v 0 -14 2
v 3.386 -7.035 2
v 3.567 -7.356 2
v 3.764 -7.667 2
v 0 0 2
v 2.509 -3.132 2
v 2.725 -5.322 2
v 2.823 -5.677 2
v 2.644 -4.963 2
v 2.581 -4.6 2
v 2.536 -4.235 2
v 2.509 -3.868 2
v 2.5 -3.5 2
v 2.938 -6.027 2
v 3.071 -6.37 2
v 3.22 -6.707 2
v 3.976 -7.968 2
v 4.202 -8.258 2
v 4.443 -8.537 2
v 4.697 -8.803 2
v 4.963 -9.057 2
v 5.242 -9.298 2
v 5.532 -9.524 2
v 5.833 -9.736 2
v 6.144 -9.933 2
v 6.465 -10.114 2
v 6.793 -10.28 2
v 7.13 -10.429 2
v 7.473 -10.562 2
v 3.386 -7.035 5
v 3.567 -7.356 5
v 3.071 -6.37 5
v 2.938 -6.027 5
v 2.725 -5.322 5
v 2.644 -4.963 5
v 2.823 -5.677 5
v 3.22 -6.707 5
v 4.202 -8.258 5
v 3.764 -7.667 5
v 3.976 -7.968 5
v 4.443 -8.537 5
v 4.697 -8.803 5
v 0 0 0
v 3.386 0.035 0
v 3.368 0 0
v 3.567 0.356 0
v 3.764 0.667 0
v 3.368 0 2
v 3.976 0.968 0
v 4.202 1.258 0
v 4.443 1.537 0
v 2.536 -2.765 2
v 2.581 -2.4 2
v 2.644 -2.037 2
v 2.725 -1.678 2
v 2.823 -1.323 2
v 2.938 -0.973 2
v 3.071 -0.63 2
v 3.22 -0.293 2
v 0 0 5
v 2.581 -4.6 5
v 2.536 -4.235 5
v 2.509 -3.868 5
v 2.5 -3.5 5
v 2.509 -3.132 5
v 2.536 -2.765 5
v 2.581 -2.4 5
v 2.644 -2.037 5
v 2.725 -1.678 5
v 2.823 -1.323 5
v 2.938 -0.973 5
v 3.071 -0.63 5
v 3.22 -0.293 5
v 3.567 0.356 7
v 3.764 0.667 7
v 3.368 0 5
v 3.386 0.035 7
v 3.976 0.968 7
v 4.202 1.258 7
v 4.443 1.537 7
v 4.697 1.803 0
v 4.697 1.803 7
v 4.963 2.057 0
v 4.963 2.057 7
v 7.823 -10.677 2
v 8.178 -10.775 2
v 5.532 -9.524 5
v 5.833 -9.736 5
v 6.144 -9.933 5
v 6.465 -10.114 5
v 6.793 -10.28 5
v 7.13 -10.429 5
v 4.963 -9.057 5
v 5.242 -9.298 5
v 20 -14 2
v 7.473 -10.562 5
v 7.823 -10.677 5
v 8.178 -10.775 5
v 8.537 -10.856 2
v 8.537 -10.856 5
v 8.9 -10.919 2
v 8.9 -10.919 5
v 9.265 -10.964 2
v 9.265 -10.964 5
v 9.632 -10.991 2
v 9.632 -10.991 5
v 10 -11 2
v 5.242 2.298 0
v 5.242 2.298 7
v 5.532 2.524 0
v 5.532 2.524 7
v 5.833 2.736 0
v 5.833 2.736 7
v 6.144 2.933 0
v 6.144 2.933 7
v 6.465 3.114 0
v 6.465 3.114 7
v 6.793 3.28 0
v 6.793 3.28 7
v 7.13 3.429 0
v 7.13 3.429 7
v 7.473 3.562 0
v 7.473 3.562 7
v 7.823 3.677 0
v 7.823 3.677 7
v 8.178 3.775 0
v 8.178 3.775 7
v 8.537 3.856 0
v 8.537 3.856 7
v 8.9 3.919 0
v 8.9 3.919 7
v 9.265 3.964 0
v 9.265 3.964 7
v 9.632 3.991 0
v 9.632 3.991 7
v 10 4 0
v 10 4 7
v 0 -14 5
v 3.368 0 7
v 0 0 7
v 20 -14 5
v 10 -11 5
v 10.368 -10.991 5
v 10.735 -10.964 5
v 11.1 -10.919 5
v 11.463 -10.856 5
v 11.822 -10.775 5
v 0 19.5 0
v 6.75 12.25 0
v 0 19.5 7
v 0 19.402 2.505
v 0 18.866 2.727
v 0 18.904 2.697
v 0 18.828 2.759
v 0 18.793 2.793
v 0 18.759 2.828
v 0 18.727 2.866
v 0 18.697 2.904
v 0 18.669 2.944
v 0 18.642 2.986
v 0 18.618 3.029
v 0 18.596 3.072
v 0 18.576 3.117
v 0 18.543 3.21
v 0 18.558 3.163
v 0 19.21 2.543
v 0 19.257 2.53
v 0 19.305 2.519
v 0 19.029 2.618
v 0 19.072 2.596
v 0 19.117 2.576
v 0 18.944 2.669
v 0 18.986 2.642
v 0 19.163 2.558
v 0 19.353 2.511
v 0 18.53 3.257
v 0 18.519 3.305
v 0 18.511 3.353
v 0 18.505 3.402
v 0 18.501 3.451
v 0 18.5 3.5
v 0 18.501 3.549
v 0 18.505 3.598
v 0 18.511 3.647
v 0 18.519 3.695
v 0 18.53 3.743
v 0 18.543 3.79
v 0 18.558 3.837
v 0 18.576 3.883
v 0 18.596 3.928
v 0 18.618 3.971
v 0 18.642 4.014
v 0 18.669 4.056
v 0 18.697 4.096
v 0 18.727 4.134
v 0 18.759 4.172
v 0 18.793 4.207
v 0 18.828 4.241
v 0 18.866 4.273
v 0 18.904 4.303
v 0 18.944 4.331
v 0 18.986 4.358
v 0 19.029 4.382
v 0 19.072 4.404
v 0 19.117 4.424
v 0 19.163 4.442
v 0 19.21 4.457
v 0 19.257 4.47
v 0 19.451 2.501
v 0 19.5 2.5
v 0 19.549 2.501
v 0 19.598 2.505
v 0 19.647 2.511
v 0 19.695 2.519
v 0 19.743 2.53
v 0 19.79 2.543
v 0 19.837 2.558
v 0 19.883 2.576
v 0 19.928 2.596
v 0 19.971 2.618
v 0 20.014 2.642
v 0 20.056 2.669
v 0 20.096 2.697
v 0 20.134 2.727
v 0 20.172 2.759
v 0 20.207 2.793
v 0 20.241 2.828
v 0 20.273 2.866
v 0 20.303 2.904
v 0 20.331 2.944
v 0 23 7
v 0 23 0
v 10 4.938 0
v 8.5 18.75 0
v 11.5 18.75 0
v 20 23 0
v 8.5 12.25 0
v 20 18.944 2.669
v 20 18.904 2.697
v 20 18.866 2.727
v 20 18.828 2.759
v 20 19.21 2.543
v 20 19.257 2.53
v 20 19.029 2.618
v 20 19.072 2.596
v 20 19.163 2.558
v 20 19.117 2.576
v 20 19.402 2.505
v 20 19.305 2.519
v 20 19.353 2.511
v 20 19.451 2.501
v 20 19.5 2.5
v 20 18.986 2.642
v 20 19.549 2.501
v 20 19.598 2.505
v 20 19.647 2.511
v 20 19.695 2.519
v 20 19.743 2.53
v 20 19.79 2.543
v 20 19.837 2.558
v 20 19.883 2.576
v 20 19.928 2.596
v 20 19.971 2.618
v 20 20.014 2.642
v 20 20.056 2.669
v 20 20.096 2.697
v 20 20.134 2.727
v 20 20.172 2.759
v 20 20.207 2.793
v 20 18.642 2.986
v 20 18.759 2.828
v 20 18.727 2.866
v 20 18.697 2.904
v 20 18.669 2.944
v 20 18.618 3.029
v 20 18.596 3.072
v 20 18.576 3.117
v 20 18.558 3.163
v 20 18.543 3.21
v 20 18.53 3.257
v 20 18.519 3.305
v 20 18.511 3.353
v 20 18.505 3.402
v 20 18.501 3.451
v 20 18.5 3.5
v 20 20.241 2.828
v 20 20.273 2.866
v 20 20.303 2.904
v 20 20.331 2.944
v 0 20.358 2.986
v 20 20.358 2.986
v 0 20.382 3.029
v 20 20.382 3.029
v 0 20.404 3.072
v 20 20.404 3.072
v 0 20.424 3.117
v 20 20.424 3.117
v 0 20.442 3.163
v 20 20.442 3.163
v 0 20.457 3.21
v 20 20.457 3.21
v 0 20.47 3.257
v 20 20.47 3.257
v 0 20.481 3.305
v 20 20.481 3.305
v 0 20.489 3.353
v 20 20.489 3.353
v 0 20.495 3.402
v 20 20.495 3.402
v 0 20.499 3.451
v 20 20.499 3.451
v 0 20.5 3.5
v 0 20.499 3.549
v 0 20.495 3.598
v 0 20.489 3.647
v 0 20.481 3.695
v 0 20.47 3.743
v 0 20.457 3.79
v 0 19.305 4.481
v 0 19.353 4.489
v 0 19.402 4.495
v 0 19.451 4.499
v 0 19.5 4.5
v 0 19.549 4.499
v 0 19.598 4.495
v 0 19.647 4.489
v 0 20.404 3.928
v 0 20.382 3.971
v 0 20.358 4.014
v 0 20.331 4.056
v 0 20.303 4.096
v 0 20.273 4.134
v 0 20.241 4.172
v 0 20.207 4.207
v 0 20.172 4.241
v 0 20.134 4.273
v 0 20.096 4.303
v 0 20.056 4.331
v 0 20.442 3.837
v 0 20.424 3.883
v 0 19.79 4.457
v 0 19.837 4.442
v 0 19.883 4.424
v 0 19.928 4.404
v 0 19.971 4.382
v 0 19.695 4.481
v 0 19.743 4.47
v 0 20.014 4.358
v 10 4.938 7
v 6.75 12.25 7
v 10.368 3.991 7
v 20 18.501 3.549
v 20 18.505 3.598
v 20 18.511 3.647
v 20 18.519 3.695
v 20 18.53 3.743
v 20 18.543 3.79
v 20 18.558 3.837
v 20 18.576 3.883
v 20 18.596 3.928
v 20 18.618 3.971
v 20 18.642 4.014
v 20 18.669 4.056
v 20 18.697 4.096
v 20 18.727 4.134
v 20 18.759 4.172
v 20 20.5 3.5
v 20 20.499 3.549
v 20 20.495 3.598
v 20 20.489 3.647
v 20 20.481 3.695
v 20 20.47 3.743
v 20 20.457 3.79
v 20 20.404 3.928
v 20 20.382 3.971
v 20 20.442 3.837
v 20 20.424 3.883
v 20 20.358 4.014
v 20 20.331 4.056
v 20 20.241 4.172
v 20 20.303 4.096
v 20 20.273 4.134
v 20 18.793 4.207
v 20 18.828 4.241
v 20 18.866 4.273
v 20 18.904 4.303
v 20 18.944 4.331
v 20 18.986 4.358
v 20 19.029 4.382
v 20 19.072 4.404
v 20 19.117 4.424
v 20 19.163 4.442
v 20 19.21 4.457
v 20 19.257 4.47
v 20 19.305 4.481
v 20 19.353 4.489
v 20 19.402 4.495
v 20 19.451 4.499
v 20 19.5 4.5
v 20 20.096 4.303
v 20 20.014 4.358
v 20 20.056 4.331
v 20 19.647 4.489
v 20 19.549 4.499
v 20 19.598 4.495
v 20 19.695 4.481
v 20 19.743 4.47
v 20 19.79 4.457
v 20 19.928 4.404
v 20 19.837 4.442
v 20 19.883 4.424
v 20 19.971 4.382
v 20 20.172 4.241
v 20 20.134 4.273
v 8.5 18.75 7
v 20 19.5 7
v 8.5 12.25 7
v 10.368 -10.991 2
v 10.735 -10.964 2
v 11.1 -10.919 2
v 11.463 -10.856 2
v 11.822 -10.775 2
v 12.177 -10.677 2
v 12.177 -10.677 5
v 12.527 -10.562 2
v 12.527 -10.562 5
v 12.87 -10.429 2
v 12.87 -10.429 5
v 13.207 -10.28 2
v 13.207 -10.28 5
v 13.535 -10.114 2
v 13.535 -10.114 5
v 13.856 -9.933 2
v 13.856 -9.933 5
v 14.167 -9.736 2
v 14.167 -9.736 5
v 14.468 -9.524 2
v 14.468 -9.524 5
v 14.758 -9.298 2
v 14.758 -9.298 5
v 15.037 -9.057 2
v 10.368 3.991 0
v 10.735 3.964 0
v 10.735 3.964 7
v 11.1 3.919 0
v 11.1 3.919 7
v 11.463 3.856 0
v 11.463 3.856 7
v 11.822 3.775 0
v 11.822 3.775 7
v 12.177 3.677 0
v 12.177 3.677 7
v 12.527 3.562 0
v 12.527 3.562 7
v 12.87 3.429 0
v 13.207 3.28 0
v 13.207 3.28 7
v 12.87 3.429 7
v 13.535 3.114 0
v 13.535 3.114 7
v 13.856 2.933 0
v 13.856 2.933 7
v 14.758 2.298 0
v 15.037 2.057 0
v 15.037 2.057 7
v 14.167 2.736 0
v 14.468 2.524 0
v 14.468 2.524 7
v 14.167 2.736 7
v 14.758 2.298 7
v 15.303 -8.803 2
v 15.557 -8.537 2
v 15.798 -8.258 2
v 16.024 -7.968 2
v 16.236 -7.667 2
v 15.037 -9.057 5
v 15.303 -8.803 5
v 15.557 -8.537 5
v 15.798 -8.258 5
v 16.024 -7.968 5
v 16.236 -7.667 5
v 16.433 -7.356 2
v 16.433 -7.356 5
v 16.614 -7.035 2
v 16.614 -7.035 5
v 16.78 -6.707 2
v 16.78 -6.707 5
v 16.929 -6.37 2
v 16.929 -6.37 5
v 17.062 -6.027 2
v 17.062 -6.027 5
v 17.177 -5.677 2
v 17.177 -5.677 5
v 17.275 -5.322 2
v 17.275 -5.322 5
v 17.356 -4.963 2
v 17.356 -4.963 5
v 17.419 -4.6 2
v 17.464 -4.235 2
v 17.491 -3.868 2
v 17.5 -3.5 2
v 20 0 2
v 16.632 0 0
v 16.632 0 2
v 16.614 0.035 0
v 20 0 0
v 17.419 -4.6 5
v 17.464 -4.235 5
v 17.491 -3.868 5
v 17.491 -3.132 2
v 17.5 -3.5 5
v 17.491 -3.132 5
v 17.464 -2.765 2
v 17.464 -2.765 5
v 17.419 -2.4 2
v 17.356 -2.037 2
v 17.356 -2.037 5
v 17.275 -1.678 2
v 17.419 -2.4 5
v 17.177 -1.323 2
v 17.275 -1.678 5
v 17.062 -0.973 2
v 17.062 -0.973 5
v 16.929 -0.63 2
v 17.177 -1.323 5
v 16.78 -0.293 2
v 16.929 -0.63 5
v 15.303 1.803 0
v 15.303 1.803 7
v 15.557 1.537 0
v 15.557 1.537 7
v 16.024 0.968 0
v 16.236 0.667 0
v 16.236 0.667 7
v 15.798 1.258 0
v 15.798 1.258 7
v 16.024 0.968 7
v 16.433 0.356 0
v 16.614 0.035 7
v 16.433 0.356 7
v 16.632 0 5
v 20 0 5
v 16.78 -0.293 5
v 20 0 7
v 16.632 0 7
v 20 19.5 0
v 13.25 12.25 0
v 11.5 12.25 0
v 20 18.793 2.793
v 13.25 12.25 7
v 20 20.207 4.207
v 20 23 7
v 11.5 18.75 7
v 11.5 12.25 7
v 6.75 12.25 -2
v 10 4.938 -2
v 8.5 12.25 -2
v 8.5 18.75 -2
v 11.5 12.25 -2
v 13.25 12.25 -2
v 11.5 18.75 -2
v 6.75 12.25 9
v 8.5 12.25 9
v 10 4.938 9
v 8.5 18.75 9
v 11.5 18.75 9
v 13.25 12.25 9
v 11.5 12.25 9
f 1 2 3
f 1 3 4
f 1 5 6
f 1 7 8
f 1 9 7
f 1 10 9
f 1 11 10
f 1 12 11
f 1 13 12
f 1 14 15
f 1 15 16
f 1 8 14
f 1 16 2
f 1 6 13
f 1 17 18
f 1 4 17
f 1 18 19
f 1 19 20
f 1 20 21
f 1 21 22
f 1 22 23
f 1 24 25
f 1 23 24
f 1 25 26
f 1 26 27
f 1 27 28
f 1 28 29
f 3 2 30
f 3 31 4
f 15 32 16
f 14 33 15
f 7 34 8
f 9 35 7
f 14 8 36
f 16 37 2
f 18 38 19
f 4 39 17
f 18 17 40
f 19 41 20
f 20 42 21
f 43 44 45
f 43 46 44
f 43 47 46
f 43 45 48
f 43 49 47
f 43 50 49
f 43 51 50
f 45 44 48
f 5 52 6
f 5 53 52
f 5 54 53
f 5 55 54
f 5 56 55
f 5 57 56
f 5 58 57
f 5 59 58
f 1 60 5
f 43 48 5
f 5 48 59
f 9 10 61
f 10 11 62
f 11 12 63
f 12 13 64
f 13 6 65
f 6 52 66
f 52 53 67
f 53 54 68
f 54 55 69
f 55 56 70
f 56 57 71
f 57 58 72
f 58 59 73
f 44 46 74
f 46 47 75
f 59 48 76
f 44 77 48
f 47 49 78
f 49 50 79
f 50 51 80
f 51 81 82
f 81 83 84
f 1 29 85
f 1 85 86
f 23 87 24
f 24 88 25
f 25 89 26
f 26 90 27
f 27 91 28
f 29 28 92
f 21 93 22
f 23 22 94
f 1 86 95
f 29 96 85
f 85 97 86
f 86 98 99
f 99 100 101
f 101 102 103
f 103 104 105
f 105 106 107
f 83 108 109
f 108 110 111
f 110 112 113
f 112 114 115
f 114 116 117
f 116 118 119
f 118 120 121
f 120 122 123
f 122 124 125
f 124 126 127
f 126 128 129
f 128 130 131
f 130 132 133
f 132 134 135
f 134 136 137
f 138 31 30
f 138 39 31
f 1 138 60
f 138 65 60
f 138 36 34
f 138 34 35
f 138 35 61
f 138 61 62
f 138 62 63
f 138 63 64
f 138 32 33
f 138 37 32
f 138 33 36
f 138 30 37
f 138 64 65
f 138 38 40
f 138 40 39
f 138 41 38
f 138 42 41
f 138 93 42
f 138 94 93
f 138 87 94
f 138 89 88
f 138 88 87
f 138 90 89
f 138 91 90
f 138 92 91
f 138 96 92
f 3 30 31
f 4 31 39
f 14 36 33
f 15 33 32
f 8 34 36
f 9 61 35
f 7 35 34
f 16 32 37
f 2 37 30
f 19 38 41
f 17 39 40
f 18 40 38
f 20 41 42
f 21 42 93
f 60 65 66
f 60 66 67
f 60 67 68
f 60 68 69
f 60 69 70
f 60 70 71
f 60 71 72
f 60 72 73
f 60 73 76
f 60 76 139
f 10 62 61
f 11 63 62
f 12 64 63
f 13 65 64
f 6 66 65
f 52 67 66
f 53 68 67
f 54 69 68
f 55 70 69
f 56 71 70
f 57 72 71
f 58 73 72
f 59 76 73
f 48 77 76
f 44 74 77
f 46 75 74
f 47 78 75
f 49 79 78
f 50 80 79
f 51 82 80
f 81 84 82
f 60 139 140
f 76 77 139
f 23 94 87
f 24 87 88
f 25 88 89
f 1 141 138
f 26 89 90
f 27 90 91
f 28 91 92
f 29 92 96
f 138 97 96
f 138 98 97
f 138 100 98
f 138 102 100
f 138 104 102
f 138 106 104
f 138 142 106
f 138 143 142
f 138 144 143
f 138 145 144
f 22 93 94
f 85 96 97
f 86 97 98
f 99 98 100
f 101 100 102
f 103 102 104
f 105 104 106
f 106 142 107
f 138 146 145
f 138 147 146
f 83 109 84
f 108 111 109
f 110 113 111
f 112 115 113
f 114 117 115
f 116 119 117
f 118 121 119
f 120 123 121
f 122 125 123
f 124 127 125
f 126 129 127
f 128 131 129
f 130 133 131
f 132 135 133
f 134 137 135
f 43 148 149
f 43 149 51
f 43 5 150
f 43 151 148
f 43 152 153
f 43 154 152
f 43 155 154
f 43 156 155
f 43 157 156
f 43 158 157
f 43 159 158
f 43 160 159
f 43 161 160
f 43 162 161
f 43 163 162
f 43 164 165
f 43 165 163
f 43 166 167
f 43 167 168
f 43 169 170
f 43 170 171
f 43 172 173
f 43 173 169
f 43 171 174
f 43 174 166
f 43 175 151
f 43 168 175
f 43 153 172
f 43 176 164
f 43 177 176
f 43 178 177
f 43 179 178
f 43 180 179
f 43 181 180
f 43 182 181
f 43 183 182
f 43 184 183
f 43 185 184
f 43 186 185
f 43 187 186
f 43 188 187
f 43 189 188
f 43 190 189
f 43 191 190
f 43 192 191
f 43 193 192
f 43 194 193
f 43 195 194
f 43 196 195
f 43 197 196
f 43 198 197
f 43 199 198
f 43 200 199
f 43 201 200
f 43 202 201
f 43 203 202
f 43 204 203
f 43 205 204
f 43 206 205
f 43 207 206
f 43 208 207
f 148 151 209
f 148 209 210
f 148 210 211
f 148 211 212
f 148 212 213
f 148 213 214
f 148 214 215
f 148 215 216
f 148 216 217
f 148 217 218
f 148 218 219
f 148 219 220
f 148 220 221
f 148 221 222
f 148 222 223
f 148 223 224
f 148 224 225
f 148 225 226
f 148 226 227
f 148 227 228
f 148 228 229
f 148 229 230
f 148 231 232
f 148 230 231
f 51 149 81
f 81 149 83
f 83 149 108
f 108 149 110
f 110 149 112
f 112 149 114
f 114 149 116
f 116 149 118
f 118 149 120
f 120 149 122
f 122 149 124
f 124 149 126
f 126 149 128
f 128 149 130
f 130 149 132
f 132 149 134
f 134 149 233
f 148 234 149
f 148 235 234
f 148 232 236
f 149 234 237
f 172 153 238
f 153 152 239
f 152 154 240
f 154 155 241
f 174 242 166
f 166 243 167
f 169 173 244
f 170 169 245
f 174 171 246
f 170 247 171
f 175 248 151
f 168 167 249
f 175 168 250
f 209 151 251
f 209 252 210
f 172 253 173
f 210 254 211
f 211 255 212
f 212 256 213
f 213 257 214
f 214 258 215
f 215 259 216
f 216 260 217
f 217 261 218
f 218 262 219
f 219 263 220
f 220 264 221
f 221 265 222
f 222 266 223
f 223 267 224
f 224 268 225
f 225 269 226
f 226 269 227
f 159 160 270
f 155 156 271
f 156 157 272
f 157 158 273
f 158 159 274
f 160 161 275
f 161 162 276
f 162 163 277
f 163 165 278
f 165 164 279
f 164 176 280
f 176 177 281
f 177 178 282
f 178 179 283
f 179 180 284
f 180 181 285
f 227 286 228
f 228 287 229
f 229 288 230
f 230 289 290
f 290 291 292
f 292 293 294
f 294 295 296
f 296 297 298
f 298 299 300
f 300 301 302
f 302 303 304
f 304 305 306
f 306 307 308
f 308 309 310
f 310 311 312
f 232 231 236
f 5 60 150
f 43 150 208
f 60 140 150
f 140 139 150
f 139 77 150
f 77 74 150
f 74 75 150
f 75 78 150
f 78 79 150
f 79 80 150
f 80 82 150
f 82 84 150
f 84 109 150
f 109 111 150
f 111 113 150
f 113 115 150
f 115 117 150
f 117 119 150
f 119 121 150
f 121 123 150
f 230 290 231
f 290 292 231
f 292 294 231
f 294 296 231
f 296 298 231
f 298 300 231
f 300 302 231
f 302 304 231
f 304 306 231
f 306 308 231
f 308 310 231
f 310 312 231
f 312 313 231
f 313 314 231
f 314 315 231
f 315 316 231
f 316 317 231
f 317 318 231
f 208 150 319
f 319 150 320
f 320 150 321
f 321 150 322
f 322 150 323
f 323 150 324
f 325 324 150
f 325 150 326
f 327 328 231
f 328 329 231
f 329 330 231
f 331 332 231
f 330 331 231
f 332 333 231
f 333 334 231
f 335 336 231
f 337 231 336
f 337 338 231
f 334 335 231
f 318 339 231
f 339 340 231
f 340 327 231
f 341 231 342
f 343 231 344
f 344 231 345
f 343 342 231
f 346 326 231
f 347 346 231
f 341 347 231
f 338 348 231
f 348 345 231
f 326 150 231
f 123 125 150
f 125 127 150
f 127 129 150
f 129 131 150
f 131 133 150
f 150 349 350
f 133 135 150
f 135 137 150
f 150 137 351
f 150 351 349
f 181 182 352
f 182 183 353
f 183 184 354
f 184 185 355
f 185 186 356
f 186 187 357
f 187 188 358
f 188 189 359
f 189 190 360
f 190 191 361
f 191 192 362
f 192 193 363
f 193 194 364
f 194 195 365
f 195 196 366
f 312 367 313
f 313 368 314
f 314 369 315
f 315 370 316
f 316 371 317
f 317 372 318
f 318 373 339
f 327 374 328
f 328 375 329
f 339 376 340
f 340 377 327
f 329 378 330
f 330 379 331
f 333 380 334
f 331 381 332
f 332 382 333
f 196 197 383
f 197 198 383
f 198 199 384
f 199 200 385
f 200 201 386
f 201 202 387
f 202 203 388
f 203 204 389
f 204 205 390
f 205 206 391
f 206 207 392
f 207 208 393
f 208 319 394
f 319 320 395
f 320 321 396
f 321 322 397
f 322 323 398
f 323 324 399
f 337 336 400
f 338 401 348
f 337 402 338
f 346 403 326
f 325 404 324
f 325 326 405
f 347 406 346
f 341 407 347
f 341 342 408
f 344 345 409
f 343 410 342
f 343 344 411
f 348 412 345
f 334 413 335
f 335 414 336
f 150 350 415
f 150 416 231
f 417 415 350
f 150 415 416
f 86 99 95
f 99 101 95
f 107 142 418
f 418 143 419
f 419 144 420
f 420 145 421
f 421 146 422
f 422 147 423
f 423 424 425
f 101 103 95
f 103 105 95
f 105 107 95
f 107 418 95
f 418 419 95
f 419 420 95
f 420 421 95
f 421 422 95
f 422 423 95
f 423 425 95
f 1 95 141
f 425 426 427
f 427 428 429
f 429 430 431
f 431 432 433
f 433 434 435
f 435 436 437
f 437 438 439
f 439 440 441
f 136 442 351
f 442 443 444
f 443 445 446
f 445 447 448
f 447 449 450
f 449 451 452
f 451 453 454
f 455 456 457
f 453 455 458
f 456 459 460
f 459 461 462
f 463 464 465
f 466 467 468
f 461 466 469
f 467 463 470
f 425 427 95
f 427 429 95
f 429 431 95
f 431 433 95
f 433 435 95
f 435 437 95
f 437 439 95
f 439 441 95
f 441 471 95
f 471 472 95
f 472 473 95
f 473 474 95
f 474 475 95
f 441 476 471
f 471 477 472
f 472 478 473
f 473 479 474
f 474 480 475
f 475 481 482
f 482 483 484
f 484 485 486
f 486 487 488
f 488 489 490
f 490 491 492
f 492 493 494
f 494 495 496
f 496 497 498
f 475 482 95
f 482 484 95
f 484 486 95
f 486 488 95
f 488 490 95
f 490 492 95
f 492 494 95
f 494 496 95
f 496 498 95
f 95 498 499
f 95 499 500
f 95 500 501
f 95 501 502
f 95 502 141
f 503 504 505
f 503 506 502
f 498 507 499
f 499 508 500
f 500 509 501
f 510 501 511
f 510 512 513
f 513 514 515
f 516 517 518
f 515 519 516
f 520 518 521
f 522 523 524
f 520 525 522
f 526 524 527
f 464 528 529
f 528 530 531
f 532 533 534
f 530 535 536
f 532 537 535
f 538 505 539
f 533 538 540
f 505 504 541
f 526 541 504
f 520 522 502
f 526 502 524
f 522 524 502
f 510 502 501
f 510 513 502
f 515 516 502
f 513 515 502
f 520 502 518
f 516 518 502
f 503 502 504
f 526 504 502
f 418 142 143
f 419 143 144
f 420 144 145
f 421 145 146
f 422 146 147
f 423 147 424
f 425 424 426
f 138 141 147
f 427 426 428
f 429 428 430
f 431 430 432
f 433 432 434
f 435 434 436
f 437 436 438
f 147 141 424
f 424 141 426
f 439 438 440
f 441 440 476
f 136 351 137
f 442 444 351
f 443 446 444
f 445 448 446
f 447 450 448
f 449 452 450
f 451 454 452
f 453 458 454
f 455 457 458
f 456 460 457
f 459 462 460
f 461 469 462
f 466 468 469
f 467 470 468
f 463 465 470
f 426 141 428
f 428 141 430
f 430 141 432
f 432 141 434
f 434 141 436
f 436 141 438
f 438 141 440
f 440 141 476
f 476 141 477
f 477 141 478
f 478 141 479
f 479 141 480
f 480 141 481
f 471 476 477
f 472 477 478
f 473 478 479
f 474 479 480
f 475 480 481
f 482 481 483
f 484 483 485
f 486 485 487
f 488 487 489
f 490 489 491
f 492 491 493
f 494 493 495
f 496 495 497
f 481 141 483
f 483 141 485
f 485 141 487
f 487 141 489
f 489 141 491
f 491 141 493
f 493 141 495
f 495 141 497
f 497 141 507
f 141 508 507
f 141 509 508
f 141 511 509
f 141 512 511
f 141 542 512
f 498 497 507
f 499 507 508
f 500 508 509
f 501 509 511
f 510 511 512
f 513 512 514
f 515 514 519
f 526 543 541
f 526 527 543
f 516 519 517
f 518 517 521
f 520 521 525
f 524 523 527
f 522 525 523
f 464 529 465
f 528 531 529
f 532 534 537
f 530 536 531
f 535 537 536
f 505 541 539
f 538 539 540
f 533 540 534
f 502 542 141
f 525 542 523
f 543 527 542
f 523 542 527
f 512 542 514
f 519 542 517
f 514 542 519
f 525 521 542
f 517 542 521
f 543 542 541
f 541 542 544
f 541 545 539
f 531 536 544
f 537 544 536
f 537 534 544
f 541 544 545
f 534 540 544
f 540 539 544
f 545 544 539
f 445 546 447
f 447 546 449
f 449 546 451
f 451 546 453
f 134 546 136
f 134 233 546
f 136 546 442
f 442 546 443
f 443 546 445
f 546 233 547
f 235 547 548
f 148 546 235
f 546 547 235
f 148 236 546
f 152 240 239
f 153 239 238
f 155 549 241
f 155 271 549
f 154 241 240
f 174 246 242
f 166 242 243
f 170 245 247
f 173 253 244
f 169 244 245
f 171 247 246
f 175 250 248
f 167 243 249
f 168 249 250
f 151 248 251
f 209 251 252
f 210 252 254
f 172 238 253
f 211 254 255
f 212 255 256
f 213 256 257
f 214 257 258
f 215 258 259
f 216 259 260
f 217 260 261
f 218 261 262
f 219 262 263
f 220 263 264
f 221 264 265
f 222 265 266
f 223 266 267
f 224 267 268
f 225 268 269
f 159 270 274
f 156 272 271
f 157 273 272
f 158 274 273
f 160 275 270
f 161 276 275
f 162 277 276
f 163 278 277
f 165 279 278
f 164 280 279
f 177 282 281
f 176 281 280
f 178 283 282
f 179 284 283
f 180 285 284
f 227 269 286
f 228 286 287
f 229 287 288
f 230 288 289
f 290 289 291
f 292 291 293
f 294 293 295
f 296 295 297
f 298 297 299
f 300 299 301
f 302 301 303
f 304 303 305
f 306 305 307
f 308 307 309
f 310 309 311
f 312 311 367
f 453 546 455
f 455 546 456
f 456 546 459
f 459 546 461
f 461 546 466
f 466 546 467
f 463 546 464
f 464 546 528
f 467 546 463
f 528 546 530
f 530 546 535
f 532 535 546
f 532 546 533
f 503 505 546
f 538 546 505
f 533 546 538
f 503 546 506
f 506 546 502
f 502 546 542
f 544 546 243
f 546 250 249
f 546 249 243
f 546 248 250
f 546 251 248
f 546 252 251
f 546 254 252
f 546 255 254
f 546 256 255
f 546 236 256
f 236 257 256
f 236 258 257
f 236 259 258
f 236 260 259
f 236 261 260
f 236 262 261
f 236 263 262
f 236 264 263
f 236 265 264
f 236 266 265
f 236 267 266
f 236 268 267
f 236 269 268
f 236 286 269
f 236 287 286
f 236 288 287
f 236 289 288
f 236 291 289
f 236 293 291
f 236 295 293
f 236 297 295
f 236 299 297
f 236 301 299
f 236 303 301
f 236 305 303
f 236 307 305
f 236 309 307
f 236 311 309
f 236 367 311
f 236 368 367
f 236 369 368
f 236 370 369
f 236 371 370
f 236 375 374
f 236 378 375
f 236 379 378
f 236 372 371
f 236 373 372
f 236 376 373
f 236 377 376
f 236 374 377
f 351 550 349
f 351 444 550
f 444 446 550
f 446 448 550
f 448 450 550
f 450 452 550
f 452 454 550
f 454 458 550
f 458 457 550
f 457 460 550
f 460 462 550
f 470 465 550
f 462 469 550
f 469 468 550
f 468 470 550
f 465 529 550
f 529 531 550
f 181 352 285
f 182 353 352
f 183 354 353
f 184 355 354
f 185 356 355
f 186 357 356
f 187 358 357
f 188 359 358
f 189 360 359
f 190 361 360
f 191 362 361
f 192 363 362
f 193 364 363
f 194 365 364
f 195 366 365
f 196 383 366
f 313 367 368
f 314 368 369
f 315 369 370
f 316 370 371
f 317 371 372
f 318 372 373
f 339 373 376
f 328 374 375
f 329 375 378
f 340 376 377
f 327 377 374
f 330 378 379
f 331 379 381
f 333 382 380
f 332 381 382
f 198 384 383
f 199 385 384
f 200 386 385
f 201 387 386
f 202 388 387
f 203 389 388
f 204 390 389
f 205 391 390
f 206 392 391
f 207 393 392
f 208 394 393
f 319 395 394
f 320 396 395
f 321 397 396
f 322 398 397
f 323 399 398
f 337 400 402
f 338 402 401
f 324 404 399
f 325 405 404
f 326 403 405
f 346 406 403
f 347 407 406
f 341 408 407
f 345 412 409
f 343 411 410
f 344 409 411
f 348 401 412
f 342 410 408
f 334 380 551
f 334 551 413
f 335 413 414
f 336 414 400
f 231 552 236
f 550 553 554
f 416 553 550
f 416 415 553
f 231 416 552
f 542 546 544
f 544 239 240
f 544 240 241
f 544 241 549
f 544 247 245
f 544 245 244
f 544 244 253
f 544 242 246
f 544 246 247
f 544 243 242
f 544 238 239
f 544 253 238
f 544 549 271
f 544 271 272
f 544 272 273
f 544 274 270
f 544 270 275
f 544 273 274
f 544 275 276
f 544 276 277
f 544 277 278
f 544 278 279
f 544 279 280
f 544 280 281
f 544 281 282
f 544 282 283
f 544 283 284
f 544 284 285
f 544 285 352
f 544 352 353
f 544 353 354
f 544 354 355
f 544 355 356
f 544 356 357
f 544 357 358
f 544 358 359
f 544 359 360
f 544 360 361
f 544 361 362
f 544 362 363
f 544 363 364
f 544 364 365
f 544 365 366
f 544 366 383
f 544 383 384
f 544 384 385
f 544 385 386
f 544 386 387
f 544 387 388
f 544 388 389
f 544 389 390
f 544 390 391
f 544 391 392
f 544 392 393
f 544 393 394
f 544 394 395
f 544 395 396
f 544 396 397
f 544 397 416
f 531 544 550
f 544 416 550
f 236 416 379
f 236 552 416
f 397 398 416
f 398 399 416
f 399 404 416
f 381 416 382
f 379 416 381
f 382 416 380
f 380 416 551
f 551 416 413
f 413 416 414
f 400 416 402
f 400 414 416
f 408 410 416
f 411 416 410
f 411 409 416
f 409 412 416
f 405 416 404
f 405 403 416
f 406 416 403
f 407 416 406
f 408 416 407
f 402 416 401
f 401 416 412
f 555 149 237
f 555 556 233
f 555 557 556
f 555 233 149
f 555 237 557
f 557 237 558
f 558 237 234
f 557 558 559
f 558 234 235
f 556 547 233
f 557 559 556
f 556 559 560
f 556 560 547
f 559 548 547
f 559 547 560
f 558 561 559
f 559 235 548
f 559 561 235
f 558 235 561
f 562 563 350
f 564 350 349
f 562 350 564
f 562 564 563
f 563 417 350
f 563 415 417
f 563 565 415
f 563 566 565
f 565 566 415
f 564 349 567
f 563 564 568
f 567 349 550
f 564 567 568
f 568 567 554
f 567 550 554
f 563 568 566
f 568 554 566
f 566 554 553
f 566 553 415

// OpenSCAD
// file: BOSL2/std.scad
// Minimal BOSL2 compatibility shim for bundled gallery models.
// It implements only the helpers used by the imported OpenSCAD projects.

CENTER = [0, 0, 0];
BOTTOM = [0, 0, -1];
TOP = [0, 0, 1];
LEFT = [-1, 0, 0];
RIGHT = [1, 0, 0];
FRONT = [0, -1, 0];
BACK = [0, 1, 0];

module up(z=0) {
    translate([0, 0, z]) children();
}

module down(z=0) {
    translate([0, 0, -z]) children();
}

module attach(anchor=CENTER) {
    children();
}

module cuboid(size=[1, 1, 1], anchor=CENTER) {
    center = anchor == CENTER;
    translate(center ? [0, 0, 0] : [0, 0, size[2] / 2])
        cube(size, center=true);
    children();
}

module xcyl(h=1, r=1, anchor=CENTER) {
    center = anchor == CENTER;
    translate(center ? [0, 0, 0] : [h / 2, 0, 0])
        rotate([0, 90, 0])
            cylinder(h=h, r=r, center=true);
}
// file: ../config/colors.scad
/* RailEduKit/InteractiveSignallingLaboratory © 2025 by Martin Scheidt and contributors
 * License: CC-BY 4.0 - https://creativecommons.org/licenses/by/4.0/
 * Project description: The Interactive Signalling Laboratory is a tool for training in Rail
 * Applications to enhance the knowledge of control and signalling principles for rail transport systems.
 *
 * Module: config/colors.scad
 */

// component colors
BASE_COLOR = [0.25, 0.25, 0.25];// lighter black to see the shapes
INDICATOR_COLOR = "white";
ROUTE_COLOR = "blue";

METALLIC_GREY = [0.474, 0.482, 0.482];



// signal colors
ASPECT_CLEAR = "green";
ASPECT_APPROACH = "yellow";
ASPECT_STOP = "red";
// main file
/* RailEduKit/InteractiveSignallingLaboratory © 2025 by Martin Scheidt and contributors
 * License: CC-BY 4.0 - https://creativecommons.org/licenses/by/4.0/
 * Project description: The Interactive Signalling Laboratory is a tool for training in Rail
 * Applications to enhance the knowledge of control and signalling principles for rail transport systems.
 *
 * Module: direction_management_lever
 */

// Include configuration file
include <../config/global_variables.scad>
include <../config/colors.scad>

// include external libraries
include <BOSL2/std.scad> // Import std from dependency BelfrySCAD/BOSL2.git

module onedirect_arrow() {
	color(INDICATOR_COLOR) union(){
		translate([ -arrowline_length, -3 / 2, 0 ])
		cube([ arrowline_length, 3, engraving_height ]);
		translate([ arrow_depth * (3 / 8), 0, 0 ])
		scale([ 3 / 4, (arrow_depth / (2 * arrow_depth * sin(120))), 1 ])
		cylinder(engraving_height, arrow_depth, arrow_depth, $fn = 3);
	}
	
}


module direction_management_lever() {
	color(BASE_COLOR)
	difference() {
		union() {
			// I axis
			cube([ block_width, block_depth, arrow_block_height ]);
			translate([ 0, block_depth, 0 ])
			cube([ block_width, overlap_cube_depth, arrow_block_height ]);

			// handle
			translate([ 0, -handle_depth, (arrow_block_height - handle_height) / 2 ])
			cube([ block_width, handle_depth, handle_height ]);
		}
		// axis
		translate([ 0, block_depth, arrow_block_height / 2 ])
		rotate([ 0, 90, 0 ])
		cylinder(h = block_width, d = axis_diameter);
		// locker pin hole
		translate([ block_width / 2, -wall_thickness_y / 2 - 3 * move_tolerance, 0 ])
		cylinder(h = locker_height, d = locker_width + 2 * move_tolerance);
	}
	// arrows
	translate([ block_width / 2, block_depth / 2 + (locker_width) / 2 - 4.5, arrow_block_height ])
	rotate([ 0, 0, -90 ])
	onedirect_arrow();
	translate([ block_width / 2, block_depth / 2 + (locker_width) / 2 - 4.5, -engraving_height ])
	rotate([ 0, 0, -90 ])
	onedirect_arrow();
}

direction_management_lever();
